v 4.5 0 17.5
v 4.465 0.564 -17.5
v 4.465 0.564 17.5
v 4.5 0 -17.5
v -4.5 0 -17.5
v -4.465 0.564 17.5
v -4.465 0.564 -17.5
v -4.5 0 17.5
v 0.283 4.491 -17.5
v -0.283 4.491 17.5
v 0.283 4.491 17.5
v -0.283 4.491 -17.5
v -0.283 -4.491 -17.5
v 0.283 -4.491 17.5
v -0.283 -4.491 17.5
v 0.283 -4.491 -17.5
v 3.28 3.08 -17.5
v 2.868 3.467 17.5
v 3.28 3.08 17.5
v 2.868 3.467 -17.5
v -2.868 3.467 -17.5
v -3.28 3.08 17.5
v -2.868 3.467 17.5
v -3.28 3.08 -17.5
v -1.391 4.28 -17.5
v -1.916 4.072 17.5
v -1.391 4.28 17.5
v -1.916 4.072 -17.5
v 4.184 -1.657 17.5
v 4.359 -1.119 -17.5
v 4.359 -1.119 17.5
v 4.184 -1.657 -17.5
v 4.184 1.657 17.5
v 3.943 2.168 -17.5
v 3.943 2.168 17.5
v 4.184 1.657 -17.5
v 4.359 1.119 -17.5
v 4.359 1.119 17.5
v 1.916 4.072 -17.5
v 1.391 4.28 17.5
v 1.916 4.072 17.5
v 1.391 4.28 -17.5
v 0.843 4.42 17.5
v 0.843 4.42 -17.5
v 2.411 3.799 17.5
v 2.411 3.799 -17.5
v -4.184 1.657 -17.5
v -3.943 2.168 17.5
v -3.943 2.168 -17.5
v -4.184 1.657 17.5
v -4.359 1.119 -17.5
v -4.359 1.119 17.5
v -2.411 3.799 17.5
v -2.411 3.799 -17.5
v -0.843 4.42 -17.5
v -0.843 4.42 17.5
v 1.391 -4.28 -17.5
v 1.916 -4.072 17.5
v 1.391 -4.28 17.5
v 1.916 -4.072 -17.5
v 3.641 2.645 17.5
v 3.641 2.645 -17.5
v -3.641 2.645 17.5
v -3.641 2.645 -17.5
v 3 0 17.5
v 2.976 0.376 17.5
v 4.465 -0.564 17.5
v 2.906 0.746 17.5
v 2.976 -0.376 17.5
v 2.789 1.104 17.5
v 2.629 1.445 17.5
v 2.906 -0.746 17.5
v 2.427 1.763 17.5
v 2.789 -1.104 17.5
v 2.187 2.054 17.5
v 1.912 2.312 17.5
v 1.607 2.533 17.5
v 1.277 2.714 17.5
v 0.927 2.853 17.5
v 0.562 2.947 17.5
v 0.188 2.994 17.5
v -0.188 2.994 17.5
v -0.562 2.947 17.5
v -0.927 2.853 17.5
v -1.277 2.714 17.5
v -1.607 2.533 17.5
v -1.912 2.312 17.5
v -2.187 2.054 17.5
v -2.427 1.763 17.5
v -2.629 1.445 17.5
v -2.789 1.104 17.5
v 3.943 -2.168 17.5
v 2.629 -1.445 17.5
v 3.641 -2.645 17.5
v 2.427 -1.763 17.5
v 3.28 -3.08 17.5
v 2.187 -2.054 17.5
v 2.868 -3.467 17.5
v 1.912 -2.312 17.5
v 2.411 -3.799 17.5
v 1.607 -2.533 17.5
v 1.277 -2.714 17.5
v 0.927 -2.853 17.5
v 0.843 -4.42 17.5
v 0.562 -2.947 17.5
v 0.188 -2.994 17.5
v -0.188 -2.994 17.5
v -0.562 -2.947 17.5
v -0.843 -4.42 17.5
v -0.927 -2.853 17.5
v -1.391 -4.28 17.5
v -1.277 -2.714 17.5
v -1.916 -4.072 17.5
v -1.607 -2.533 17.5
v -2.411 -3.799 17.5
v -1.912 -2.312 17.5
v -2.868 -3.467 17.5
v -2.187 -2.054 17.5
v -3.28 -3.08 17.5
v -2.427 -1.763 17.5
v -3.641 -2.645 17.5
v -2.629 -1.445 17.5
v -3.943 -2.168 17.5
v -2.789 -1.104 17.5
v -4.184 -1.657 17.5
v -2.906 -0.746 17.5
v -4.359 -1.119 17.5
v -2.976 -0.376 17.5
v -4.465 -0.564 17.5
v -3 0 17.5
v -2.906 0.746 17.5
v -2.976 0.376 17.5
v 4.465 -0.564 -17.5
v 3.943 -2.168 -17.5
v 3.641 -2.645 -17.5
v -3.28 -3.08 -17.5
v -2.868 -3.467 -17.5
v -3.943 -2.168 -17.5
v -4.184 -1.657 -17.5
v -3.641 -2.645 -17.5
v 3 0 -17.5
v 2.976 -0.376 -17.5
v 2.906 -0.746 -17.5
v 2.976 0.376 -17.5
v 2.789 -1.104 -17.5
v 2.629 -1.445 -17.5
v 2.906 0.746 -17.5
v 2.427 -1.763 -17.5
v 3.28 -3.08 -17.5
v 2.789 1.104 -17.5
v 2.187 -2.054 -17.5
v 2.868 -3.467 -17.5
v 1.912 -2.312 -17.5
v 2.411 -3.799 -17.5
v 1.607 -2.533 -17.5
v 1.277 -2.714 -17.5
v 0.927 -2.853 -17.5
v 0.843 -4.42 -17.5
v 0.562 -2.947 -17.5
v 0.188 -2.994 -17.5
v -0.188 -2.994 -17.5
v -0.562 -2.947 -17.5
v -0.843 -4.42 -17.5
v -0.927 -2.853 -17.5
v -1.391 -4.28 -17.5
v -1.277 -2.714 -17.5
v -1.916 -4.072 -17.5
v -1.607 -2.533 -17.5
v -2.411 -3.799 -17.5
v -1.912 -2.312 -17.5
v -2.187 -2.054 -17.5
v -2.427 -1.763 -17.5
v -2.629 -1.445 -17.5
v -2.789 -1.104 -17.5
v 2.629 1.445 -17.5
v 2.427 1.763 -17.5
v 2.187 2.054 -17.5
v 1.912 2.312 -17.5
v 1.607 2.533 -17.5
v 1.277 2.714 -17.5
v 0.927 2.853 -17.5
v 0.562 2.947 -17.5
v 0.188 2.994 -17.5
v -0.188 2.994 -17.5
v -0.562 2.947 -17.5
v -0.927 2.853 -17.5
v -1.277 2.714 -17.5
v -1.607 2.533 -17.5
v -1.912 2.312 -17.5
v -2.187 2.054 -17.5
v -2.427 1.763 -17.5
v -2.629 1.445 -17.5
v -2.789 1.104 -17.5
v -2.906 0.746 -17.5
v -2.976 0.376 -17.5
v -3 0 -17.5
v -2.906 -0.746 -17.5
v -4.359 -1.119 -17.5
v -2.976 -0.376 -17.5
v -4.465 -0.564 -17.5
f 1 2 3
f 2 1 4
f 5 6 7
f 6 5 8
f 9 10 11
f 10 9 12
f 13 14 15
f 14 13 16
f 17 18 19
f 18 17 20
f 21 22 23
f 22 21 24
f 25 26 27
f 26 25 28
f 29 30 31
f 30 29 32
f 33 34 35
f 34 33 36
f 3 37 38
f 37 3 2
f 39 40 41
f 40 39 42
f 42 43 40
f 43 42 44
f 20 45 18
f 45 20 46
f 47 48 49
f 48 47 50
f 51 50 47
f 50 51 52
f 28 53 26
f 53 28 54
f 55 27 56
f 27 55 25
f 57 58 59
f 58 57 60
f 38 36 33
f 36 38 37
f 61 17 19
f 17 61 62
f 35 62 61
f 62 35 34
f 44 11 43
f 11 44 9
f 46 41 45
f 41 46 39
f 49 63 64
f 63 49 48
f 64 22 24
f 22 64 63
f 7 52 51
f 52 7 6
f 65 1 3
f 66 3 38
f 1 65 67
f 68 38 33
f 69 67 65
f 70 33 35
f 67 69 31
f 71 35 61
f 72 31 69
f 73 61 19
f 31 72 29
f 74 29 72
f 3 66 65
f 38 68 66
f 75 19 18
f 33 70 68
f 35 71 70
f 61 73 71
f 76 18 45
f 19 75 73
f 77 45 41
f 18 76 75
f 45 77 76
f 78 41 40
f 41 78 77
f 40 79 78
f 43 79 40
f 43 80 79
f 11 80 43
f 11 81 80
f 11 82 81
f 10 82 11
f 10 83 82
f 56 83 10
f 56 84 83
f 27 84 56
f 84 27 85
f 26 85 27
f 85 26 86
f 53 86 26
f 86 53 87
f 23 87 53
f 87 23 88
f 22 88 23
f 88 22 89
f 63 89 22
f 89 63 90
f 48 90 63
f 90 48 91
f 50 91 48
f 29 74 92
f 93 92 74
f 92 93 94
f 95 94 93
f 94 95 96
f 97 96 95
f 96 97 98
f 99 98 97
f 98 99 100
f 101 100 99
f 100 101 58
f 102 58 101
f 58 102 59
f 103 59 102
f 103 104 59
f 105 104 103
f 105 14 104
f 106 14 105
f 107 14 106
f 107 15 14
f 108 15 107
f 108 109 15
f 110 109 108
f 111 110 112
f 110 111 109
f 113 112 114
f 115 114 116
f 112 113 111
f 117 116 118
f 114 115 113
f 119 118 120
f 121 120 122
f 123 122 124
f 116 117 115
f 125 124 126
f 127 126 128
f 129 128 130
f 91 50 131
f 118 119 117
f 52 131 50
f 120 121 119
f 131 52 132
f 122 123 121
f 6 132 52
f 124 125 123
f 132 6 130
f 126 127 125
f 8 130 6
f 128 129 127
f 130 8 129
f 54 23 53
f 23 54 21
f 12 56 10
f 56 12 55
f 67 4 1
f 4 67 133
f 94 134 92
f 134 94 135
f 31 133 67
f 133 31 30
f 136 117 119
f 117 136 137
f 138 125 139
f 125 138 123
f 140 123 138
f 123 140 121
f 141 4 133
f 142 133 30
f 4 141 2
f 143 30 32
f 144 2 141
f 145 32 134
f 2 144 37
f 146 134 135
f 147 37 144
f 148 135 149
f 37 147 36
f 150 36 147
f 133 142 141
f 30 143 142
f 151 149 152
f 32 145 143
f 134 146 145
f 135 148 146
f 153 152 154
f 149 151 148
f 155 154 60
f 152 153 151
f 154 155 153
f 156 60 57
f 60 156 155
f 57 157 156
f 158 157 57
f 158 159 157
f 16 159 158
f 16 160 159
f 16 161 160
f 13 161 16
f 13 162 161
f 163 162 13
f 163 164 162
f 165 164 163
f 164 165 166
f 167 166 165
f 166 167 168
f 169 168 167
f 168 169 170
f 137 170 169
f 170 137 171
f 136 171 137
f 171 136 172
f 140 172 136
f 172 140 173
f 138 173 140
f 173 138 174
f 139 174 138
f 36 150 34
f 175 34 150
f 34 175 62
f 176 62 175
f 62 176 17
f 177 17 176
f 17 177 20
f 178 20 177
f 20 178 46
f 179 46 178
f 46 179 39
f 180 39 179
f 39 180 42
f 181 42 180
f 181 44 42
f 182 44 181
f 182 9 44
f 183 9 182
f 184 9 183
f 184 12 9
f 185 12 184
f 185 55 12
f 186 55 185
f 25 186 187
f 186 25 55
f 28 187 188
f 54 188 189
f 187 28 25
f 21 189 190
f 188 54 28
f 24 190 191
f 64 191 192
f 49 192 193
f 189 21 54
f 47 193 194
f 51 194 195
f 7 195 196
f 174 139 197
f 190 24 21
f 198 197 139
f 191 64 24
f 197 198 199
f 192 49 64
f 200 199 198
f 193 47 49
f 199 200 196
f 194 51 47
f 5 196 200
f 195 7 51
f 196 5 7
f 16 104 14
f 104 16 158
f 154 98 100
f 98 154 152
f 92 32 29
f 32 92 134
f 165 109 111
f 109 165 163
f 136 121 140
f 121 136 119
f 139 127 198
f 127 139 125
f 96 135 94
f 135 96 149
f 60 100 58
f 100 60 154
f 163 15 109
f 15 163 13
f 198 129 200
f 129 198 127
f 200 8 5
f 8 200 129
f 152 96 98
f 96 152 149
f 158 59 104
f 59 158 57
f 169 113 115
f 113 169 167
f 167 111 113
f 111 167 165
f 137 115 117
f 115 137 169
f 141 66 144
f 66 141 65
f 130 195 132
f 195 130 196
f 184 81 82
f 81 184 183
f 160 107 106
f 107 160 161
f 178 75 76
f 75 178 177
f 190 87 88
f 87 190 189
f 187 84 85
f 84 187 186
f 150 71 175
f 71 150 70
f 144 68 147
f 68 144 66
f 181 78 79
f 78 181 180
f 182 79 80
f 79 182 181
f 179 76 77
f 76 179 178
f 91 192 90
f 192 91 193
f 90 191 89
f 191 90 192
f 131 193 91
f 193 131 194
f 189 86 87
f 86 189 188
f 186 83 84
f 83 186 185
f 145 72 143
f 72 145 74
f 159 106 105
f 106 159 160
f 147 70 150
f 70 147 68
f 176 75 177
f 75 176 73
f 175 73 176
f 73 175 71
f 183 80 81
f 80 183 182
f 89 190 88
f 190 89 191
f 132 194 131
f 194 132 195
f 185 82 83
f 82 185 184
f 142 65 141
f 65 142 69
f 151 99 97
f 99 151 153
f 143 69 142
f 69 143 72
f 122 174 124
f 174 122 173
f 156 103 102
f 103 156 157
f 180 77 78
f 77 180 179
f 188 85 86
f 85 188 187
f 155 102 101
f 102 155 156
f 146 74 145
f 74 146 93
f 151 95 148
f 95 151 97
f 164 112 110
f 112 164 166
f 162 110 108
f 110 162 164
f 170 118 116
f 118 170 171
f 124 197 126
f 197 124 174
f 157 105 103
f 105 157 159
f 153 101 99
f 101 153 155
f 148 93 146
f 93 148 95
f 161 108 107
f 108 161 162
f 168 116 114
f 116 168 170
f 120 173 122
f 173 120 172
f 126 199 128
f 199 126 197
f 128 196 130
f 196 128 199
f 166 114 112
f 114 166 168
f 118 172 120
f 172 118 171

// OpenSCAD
$fn = 50;


difference() {
	union() {
		translate(v = [0, 0, -17.5000000000]) {
			cylinder(h = 35, r = 4.5000000000);
		}
	}
	union() {
		translate(v = [0, 0, -100.0000000000]) {
			cylinder(h = 200, r = 3.0000000000);
		}
	}
}
